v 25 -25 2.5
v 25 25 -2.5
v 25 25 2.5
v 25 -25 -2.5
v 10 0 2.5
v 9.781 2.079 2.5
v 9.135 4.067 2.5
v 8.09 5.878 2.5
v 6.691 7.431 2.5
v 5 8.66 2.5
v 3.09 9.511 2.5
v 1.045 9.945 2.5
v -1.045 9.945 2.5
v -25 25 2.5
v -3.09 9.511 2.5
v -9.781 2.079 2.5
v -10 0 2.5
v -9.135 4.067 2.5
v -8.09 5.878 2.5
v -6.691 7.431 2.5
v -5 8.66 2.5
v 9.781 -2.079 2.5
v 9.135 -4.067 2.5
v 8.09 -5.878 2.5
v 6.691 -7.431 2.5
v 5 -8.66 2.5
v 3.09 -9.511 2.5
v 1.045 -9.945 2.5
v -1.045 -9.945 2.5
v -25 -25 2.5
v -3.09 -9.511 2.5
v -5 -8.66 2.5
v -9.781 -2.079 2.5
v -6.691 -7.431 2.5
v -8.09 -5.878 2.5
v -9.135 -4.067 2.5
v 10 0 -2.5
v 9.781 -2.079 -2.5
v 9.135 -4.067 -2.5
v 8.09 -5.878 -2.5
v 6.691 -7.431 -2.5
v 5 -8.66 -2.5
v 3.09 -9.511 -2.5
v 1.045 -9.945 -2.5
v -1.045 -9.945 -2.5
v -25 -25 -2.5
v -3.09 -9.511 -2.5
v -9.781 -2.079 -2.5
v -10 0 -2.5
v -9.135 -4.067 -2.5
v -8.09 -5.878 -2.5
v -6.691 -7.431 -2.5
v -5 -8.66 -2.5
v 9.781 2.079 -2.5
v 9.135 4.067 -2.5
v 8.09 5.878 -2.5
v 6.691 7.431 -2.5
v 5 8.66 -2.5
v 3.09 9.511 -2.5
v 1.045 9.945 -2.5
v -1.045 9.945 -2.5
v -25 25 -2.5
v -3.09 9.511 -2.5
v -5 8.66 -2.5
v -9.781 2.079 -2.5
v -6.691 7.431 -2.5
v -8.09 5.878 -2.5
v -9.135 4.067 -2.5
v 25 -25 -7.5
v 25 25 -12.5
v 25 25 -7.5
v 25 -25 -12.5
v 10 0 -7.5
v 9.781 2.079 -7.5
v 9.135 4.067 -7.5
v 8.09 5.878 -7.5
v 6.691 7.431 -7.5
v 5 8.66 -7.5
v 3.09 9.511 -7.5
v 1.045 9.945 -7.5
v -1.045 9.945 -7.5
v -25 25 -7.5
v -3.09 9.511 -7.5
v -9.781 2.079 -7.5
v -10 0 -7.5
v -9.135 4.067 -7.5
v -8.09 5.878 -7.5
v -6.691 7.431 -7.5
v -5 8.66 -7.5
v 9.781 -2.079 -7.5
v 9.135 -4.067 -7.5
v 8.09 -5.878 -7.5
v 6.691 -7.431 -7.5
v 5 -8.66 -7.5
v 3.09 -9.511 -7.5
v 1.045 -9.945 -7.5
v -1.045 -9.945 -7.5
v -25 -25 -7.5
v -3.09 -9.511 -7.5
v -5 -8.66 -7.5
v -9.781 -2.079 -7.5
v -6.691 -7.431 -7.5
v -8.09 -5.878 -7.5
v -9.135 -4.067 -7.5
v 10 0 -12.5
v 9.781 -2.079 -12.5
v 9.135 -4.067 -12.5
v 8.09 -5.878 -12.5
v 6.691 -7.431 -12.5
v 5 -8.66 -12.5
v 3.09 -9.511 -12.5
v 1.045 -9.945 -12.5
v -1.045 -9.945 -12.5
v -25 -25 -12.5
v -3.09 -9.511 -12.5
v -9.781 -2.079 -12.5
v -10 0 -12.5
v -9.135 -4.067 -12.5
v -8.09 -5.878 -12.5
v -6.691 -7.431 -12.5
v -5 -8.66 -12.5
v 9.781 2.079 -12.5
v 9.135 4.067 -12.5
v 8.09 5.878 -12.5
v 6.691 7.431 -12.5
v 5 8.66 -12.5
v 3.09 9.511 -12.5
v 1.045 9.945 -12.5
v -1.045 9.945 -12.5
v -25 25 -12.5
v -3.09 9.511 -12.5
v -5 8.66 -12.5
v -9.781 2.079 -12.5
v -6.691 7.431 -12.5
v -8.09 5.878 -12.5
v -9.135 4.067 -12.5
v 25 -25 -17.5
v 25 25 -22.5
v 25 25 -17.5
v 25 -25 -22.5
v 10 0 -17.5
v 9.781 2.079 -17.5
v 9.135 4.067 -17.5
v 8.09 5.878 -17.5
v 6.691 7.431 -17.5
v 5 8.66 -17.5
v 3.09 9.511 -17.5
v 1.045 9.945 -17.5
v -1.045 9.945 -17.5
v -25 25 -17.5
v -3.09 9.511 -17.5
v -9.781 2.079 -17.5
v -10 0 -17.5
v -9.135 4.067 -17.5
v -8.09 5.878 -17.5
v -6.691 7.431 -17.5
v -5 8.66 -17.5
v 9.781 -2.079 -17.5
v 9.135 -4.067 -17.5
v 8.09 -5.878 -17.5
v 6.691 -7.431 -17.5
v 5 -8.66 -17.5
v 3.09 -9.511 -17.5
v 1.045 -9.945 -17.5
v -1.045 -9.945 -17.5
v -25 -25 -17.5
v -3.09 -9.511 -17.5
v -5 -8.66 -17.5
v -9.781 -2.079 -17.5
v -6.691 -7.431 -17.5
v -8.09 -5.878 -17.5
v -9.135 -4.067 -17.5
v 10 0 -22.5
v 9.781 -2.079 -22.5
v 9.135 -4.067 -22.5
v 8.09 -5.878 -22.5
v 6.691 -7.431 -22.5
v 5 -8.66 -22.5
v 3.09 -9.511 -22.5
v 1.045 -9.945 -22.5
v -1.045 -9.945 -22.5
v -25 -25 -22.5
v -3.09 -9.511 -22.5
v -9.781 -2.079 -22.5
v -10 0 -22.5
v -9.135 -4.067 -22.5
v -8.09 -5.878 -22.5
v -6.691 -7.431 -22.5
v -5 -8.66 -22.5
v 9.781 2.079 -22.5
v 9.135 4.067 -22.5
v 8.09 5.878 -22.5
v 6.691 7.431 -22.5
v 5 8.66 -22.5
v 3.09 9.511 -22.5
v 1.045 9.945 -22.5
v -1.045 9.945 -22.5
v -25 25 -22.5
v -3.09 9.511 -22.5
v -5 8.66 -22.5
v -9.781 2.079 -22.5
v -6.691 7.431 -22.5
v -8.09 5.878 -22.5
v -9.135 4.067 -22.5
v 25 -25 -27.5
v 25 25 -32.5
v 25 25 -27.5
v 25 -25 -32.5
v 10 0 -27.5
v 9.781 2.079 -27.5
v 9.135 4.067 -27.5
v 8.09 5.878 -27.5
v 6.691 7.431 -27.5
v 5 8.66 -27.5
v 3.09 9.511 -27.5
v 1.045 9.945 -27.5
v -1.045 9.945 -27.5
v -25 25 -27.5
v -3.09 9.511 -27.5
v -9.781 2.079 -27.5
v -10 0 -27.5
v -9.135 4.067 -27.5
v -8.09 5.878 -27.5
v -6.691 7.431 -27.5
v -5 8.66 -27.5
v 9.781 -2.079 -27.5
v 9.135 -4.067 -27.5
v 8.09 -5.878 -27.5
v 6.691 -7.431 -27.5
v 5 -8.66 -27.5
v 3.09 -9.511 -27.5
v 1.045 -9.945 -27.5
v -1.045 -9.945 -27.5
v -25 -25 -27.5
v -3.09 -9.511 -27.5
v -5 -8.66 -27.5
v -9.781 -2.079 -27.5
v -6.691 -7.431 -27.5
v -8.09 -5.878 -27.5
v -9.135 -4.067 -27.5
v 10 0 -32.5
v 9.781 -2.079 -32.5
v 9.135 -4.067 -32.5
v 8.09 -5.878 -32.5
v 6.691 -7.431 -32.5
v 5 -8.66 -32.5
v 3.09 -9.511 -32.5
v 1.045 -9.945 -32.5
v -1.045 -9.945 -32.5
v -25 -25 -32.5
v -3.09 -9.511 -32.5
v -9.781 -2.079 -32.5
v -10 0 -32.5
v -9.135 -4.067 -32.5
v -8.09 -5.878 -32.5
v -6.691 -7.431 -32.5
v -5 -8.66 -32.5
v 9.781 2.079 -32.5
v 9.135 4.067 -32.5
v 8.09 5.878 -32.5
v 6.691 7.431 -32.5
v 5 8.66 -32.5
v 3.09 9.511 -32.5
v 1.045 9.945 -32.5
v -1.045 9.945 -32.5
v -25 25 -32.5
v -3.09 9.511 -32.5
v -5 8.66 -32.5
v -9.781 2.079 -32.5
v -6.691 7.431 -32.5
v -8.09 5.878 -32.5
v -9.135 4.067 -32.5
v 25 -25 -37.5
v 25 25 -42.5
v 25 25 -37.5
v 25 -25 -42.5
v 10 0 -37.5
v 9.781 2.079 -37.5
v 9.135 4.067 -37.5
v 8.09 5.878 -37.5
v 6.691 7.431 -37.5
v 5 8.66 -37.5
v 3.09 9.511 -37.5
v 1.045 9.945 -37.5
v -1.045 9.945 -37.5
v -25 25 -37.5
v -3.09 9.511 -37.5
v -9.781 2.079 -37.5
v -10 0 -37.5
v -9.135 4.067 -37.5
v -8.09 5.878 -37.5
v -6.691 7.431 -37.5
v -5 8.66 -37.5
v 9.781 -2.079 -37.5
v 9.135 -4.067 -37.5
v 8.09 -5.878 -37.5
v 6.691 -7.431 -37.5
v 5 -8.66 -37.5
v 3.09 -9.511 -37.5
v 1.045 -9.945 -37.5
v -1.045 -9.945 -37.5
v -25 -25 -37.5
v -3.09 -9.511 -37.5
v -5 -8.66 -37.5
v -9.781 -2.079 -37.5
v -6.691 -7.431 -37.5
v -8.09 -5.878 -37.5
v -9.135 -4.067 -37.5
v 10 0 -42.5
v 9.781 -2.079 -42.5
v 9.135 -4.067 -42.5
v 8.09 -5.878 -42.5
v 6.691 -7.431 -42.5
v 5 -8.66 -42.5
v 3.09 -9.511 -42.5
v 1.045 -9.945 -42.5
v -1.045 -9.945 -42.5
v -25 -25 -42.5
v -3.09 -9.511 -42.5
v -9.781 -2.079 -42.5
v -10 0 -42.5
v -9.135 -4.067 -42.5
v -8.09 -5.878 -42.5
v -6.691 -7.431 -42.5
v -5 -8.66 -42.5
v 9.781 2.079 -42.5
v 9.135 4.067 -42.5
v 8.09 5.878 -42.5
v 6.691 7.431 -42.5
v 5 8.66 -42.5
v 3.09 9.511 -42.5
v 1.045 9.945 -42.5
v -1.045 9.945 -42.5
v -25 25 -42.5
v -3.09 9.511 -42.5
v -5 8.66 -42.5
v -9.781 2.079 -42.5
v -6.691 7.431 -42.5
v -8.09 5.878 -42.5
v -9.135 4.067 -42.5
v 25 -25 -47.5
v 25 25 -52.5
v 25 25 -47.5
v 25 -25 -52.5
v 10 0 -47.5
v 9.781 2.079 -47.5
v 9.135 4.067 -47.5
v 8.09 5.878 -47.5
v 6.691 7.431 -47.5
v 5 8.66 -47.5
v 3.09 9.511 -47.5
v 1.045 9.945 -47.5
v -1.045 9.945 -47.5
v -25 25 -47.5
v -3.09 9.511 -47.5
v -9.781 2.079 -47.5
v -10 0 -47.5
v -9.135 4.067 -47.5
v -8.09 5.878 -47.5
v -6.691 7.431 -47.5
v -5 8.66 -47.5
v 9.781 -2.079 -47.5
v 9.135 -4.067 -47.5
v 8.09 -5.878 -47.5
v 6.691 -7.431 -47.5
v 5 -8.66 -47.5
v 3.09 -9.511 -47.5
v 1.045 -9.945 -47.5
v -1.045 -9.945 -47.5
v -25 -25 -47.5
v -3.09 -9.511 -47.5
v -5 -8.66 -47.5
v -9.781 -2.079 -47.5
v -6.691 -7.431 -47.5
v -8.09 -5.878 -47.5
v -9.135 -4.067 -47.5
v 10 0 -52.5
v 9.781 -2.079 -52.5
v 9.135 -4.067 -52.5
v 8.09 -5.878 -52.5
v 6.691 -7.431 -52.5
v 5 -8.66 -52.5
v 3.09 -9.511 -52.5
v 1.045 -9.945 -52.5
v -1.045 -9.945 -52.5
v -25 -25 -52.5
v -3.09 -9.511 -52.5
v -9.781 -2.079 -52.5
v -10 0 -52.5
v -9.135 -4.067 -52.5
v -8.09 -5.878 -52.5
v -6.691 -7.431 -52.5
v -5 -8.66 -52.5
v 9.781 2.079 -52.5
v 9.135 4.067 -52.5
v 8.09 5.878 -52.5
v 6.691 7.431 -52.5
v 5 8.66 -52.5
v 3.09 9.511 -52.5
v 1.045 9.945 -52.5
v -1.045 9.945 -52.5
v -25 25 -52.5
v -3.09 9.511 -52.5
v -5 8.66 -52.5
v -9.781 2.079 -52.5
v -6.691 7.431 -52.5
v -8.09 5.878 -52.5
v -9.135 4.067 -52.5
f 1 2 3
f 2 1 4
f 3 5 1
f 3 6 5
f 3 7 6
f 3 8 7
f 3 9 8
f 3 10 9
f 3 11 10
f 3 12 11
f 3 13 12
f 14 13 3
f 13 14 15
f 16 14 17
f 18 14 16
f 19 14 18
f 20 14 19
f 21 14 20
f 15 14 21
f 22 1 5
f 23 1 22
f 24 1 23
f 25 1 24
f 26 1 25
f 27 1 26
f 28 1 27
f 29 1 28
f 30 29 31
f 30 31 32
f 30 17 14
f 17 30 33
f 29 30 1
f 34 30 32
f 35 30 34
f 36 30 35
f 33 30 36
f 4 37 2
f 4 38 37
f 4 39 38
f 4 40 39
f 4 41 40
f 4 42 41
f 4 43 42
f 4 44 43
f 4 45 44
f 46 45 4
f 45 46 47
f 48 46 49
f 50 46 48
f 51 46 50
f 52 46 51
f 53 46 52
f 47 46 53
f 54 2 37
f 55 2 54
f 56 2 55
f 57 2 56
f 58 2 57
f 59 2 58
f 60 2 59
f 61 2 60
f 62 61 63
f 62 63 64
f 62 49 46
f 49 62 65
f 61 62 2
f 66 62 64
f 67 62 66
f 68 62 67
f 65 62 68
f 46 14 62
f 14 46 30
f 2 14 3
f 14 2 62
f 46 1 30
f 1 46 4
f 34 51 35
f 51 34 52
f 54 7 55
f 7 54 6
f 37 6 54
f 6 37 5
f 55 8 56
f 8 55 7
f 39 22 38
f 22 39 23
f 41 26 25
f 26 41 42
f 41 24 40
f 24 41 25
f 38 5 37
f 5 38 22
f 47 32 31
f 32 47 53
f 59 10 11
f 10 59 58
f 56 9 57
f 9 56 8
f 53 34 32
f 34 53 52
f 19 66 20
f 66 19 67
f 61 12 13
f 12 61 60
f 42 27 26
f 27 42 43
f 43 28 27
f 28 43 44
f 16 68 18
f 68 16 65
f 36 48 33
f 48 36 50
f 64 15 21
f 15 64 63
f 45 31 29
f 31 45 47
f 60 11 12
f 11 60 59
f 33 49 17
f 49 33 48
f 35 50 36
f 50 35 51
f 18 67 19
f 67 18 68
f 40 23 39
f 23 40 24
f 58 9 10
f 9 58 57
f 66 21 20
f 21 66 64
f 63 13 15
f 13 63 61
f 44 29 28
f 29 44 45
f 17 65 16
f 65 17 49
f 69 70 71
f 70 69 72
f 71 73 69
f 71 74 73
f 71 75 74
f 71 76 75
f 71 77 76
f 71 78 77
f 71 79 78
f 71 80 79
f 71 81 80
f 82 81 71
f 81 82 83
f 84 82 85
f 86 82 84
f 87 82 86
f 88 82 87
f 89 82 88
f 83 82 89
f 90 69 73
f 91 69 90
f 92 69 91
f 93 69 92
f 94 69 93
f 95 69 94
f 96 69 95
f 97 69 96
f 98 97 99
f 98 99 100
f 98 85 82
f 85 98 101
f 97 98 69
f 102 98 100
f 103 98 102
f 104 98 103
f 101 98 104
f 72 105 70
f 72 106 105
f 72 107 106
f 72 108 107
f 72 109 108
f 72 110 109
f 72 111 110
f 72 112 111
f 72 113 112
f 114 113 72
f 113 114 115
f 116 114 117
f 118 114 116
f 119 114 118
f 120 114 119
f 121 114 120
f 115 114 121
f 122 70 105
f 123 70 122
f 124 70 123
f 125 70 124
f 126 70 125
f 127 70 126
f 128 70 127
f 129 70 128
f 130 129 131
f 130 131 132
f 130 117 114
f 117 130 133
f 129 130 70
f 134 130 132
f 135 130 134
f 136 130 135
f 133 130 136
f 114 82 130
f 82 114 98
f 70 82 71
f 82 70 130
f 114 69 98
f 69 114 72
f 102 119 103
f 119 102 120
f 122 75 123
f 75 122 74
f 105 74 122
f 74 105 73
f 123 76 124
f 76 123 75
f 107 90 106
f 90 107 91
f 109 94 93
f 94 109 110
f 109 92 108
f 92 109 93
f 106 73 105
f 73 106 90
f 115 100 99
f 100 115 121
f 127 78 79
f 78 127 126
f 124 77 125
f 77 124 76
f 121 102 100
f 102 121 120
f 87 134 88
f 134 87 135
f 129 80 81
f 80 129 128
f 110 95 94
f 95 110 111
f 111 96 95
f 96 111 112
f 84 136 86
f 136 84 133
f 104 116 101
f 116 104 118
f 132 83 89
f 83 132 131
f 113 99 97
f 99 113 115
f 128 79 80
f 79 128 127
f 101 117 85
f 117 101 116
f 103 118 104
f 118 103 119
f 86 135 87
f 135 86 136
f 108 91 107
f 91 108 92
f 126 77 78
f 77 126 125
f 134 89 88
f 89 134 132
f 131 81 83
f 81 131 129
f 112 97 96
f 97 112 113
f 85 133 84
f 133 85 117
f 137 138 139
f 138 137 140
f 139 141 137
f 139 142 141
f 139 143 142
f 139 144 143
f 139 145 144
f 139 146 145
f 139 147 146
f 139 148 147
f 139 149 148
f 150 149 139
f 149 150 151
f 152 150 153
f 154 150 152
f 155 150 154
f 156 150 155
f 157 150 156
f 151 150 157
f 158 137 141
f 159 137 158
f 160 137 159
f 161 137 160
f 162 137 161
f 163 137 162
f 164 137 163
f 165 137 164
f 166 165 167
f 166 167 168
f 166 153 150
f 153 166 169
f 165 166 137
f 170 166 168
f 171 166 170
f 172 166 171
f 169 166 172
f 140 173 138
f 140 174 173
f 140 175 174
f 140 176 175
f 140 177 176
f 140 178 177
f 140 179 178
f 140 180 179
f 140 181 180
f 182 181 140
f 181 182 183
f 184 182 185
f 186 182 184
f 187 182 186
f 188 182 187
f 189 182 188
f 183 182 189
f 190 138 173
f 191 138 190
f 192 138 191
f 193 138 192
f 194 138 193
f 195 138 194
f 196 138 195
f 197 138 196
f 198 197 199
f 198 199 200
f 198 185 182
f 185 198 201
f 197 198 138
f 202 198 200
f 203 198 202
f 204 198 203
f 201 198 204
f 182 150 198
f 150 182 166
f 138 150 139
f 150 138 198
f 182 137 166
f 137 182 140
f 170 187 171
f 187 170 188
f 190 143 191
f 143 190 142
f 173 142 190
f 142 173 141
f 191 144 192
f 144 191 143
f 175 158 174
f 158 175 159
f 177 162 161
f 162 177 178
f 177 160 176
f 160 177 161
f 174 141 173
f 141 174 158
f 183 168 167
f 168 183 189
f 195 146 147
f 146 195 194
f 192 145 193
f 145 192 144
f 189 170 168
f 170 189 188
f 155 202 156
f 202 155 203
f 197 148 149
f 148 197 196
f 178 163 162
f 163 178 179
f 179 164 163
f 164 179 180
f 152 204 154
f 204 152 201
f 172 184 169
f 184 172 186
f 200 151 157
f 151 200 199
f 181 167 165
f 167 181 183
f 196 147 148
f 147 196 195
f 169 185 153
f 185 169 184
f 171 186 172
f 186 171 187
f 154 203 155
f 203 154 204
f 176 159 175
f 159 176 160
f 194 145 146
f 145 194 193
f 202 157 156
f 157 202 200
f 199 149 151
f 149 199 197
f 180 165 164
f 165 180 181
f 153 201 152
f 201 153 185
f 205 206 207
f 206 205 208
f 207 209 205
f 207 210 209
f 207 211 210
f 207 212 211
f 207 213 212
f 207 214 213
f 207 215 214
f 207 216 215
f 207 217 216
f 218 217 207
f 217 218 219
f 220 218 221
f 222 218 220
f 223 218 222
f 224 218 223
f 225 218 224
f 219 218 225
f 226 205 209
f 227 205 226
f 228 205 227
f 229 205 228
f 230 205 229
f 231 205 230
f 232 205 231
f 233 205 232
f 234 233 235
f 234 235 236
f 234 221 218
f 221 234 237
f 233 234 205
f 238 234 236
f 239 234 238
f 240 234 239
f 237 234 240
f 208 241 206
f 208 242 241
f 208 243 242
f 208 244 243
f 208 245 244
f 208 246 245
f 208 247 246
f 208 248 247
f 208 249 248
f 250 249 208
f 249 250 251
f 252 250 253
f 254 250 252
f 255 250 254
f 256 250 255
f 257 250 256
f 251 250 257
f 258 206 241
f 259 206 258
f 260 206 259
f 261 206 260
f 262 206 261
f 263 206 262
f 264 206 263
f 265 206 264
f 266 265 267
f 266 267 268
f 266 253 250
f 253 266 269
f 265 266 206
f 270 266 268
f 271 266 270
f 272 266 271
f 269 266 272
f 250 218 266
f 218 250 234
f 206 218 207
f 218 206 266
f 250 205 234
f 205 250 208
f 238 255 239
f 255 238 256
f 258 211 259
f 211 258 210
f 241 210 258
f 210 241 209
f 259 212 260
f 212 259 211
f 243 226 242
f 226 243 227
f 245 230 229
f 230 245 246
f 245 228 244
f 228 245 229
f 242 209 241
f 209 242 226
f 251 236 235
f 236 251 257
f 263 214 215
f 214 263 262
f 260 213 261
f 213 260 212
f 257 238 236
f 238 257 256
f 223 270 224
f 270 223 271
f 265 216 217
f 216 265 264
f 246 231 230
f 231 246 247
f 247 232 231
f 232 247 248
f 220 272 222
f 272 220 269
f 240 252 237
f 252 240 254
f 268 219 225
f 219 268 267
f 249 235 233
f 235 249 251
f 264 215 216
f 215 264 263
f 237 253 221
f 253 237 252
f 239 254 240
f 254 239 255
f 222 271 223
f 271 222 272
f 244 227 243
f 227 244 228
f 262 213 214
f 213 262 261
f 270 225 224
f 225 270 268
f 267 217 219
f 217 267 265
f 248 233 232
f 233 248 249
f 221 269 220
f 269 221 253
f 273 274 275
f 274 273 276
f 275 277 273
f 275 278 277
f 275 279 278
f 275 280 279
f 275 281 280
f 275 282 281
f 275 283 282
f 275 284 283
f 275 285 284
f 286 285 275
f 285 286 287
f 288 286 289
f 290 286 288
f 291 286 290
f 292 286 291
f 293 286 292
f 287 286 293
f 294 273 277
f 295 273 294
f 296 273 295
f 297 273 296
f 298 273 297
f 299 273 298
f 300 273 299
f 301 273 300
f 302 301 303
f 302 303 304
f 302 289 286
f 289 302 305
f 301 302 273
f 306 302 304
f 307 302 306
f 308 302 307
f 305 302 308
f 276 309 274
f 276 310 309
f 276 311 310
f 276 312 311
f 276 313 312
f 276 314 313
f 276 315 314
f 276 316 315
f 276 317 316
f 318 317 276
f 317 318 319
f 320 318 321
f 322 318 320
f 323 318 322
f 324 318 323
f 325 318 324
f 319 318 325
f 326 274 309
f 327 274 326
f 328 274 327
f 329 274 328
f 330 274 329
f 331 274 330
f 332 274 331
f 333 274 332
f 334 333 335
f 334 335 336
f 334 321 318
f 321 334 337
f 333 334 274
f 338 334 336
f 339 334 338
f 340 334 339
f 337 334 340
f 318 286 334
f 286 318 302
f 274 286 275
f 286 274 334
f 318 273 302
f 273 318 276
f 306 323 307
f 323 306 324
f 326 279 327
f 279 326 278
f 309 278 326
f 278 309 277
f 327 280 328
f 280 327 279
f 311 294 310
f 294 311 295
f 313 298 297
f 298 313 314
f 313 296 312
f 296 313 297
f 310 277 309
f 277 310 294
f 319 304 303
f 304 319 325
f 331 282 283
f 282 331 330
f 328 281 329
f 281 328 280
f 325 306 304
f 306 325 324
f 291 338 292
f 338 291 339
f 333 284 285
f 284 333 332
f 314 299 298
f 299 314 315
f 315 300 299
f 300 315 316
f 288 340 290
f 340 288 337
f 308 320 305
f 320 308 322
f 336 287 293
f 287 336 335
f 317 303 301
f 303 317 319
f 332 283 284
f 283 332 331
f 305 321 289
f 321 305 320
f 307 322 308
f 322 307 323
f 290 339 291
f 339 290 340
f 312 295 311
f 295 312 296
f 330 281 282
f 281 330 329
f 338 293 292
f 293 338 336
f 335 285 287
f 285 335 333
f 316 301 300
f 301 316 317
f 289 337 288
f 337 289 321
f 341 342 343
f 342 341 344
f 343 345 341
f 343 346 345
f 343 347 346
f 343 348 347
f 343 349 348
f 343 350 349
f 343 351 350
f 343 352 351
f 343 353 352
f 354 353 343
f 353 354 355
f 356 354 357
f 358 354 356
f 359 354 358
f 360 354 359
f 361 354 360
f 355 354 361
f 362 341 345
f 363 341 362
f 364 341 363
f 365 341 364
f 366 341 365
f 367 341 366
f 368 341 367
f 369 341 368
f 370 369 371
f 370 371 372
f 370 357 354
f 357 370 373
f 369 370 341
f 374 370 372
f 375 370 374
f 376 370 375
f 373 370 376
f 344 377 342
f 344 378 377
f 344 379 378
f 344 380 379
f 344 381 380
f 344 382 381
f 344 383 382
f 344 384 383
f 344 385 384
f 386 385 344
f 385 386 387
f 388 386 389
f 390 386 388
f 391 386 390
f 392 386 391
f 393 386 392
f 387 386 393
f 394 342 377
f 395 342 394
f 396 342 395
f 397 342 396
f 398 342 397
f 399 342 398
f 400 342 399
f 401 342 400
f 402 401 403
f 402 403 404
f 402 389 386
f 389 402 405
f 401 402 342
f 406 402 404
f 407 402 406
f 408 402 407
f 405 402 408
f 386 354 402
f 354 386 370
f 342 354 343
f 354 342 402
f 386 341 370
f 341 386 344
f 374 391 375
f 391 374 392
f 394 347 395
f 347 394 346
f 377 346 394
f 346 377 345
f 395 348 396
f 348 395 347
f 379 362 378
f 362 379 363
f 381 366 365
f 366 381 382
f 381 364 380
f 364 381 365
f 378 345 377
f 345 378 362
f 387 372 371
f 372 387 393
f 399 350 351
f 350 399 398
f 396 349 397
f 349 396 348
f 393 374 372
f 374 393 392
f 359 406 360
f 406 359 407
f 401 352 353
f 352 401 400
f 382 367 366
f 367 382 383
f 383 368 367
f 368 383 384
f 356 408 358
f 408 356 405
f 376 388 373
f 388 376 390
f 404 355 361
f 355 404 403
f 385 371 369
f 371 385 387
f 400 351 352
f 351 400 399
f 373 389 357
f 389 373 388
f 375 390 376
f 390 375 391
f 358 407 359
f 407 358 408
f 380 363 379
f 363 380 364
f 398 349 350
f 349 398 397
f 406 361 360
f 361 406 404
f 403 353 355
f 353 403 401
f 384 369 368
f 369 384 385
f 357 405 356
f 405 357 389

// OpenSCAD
// Parameters for the square plate with a hole
plate_width = 50; // Width of the square plate
plate_thickness = 5; // Thickness of the plate
hole_diameter = 20; // Diameter of the central hole
layer_spacing = 5; // Spacing between layers

// Function to create a square plate with a central hole
module square_plate_with_hole() {
    difference() {
        cube([plate_width, plate_width, plate_thickness], center = true);
        translate([0, 0, -plate_thickness / 2])
            cylinder(h = plate_thickness * 2, d = hole_diameter, center = true);
    }
}

// Assembling the layers based on the graph_dict
module assemble_model() {
    for (i = [0:5]) {
        translate([0, 0, -i * (plate_thickness + layer_spacing)])
            square_plate_with_hole();
    }
}

// Call the assembly module to generate the model
assemble_model();
